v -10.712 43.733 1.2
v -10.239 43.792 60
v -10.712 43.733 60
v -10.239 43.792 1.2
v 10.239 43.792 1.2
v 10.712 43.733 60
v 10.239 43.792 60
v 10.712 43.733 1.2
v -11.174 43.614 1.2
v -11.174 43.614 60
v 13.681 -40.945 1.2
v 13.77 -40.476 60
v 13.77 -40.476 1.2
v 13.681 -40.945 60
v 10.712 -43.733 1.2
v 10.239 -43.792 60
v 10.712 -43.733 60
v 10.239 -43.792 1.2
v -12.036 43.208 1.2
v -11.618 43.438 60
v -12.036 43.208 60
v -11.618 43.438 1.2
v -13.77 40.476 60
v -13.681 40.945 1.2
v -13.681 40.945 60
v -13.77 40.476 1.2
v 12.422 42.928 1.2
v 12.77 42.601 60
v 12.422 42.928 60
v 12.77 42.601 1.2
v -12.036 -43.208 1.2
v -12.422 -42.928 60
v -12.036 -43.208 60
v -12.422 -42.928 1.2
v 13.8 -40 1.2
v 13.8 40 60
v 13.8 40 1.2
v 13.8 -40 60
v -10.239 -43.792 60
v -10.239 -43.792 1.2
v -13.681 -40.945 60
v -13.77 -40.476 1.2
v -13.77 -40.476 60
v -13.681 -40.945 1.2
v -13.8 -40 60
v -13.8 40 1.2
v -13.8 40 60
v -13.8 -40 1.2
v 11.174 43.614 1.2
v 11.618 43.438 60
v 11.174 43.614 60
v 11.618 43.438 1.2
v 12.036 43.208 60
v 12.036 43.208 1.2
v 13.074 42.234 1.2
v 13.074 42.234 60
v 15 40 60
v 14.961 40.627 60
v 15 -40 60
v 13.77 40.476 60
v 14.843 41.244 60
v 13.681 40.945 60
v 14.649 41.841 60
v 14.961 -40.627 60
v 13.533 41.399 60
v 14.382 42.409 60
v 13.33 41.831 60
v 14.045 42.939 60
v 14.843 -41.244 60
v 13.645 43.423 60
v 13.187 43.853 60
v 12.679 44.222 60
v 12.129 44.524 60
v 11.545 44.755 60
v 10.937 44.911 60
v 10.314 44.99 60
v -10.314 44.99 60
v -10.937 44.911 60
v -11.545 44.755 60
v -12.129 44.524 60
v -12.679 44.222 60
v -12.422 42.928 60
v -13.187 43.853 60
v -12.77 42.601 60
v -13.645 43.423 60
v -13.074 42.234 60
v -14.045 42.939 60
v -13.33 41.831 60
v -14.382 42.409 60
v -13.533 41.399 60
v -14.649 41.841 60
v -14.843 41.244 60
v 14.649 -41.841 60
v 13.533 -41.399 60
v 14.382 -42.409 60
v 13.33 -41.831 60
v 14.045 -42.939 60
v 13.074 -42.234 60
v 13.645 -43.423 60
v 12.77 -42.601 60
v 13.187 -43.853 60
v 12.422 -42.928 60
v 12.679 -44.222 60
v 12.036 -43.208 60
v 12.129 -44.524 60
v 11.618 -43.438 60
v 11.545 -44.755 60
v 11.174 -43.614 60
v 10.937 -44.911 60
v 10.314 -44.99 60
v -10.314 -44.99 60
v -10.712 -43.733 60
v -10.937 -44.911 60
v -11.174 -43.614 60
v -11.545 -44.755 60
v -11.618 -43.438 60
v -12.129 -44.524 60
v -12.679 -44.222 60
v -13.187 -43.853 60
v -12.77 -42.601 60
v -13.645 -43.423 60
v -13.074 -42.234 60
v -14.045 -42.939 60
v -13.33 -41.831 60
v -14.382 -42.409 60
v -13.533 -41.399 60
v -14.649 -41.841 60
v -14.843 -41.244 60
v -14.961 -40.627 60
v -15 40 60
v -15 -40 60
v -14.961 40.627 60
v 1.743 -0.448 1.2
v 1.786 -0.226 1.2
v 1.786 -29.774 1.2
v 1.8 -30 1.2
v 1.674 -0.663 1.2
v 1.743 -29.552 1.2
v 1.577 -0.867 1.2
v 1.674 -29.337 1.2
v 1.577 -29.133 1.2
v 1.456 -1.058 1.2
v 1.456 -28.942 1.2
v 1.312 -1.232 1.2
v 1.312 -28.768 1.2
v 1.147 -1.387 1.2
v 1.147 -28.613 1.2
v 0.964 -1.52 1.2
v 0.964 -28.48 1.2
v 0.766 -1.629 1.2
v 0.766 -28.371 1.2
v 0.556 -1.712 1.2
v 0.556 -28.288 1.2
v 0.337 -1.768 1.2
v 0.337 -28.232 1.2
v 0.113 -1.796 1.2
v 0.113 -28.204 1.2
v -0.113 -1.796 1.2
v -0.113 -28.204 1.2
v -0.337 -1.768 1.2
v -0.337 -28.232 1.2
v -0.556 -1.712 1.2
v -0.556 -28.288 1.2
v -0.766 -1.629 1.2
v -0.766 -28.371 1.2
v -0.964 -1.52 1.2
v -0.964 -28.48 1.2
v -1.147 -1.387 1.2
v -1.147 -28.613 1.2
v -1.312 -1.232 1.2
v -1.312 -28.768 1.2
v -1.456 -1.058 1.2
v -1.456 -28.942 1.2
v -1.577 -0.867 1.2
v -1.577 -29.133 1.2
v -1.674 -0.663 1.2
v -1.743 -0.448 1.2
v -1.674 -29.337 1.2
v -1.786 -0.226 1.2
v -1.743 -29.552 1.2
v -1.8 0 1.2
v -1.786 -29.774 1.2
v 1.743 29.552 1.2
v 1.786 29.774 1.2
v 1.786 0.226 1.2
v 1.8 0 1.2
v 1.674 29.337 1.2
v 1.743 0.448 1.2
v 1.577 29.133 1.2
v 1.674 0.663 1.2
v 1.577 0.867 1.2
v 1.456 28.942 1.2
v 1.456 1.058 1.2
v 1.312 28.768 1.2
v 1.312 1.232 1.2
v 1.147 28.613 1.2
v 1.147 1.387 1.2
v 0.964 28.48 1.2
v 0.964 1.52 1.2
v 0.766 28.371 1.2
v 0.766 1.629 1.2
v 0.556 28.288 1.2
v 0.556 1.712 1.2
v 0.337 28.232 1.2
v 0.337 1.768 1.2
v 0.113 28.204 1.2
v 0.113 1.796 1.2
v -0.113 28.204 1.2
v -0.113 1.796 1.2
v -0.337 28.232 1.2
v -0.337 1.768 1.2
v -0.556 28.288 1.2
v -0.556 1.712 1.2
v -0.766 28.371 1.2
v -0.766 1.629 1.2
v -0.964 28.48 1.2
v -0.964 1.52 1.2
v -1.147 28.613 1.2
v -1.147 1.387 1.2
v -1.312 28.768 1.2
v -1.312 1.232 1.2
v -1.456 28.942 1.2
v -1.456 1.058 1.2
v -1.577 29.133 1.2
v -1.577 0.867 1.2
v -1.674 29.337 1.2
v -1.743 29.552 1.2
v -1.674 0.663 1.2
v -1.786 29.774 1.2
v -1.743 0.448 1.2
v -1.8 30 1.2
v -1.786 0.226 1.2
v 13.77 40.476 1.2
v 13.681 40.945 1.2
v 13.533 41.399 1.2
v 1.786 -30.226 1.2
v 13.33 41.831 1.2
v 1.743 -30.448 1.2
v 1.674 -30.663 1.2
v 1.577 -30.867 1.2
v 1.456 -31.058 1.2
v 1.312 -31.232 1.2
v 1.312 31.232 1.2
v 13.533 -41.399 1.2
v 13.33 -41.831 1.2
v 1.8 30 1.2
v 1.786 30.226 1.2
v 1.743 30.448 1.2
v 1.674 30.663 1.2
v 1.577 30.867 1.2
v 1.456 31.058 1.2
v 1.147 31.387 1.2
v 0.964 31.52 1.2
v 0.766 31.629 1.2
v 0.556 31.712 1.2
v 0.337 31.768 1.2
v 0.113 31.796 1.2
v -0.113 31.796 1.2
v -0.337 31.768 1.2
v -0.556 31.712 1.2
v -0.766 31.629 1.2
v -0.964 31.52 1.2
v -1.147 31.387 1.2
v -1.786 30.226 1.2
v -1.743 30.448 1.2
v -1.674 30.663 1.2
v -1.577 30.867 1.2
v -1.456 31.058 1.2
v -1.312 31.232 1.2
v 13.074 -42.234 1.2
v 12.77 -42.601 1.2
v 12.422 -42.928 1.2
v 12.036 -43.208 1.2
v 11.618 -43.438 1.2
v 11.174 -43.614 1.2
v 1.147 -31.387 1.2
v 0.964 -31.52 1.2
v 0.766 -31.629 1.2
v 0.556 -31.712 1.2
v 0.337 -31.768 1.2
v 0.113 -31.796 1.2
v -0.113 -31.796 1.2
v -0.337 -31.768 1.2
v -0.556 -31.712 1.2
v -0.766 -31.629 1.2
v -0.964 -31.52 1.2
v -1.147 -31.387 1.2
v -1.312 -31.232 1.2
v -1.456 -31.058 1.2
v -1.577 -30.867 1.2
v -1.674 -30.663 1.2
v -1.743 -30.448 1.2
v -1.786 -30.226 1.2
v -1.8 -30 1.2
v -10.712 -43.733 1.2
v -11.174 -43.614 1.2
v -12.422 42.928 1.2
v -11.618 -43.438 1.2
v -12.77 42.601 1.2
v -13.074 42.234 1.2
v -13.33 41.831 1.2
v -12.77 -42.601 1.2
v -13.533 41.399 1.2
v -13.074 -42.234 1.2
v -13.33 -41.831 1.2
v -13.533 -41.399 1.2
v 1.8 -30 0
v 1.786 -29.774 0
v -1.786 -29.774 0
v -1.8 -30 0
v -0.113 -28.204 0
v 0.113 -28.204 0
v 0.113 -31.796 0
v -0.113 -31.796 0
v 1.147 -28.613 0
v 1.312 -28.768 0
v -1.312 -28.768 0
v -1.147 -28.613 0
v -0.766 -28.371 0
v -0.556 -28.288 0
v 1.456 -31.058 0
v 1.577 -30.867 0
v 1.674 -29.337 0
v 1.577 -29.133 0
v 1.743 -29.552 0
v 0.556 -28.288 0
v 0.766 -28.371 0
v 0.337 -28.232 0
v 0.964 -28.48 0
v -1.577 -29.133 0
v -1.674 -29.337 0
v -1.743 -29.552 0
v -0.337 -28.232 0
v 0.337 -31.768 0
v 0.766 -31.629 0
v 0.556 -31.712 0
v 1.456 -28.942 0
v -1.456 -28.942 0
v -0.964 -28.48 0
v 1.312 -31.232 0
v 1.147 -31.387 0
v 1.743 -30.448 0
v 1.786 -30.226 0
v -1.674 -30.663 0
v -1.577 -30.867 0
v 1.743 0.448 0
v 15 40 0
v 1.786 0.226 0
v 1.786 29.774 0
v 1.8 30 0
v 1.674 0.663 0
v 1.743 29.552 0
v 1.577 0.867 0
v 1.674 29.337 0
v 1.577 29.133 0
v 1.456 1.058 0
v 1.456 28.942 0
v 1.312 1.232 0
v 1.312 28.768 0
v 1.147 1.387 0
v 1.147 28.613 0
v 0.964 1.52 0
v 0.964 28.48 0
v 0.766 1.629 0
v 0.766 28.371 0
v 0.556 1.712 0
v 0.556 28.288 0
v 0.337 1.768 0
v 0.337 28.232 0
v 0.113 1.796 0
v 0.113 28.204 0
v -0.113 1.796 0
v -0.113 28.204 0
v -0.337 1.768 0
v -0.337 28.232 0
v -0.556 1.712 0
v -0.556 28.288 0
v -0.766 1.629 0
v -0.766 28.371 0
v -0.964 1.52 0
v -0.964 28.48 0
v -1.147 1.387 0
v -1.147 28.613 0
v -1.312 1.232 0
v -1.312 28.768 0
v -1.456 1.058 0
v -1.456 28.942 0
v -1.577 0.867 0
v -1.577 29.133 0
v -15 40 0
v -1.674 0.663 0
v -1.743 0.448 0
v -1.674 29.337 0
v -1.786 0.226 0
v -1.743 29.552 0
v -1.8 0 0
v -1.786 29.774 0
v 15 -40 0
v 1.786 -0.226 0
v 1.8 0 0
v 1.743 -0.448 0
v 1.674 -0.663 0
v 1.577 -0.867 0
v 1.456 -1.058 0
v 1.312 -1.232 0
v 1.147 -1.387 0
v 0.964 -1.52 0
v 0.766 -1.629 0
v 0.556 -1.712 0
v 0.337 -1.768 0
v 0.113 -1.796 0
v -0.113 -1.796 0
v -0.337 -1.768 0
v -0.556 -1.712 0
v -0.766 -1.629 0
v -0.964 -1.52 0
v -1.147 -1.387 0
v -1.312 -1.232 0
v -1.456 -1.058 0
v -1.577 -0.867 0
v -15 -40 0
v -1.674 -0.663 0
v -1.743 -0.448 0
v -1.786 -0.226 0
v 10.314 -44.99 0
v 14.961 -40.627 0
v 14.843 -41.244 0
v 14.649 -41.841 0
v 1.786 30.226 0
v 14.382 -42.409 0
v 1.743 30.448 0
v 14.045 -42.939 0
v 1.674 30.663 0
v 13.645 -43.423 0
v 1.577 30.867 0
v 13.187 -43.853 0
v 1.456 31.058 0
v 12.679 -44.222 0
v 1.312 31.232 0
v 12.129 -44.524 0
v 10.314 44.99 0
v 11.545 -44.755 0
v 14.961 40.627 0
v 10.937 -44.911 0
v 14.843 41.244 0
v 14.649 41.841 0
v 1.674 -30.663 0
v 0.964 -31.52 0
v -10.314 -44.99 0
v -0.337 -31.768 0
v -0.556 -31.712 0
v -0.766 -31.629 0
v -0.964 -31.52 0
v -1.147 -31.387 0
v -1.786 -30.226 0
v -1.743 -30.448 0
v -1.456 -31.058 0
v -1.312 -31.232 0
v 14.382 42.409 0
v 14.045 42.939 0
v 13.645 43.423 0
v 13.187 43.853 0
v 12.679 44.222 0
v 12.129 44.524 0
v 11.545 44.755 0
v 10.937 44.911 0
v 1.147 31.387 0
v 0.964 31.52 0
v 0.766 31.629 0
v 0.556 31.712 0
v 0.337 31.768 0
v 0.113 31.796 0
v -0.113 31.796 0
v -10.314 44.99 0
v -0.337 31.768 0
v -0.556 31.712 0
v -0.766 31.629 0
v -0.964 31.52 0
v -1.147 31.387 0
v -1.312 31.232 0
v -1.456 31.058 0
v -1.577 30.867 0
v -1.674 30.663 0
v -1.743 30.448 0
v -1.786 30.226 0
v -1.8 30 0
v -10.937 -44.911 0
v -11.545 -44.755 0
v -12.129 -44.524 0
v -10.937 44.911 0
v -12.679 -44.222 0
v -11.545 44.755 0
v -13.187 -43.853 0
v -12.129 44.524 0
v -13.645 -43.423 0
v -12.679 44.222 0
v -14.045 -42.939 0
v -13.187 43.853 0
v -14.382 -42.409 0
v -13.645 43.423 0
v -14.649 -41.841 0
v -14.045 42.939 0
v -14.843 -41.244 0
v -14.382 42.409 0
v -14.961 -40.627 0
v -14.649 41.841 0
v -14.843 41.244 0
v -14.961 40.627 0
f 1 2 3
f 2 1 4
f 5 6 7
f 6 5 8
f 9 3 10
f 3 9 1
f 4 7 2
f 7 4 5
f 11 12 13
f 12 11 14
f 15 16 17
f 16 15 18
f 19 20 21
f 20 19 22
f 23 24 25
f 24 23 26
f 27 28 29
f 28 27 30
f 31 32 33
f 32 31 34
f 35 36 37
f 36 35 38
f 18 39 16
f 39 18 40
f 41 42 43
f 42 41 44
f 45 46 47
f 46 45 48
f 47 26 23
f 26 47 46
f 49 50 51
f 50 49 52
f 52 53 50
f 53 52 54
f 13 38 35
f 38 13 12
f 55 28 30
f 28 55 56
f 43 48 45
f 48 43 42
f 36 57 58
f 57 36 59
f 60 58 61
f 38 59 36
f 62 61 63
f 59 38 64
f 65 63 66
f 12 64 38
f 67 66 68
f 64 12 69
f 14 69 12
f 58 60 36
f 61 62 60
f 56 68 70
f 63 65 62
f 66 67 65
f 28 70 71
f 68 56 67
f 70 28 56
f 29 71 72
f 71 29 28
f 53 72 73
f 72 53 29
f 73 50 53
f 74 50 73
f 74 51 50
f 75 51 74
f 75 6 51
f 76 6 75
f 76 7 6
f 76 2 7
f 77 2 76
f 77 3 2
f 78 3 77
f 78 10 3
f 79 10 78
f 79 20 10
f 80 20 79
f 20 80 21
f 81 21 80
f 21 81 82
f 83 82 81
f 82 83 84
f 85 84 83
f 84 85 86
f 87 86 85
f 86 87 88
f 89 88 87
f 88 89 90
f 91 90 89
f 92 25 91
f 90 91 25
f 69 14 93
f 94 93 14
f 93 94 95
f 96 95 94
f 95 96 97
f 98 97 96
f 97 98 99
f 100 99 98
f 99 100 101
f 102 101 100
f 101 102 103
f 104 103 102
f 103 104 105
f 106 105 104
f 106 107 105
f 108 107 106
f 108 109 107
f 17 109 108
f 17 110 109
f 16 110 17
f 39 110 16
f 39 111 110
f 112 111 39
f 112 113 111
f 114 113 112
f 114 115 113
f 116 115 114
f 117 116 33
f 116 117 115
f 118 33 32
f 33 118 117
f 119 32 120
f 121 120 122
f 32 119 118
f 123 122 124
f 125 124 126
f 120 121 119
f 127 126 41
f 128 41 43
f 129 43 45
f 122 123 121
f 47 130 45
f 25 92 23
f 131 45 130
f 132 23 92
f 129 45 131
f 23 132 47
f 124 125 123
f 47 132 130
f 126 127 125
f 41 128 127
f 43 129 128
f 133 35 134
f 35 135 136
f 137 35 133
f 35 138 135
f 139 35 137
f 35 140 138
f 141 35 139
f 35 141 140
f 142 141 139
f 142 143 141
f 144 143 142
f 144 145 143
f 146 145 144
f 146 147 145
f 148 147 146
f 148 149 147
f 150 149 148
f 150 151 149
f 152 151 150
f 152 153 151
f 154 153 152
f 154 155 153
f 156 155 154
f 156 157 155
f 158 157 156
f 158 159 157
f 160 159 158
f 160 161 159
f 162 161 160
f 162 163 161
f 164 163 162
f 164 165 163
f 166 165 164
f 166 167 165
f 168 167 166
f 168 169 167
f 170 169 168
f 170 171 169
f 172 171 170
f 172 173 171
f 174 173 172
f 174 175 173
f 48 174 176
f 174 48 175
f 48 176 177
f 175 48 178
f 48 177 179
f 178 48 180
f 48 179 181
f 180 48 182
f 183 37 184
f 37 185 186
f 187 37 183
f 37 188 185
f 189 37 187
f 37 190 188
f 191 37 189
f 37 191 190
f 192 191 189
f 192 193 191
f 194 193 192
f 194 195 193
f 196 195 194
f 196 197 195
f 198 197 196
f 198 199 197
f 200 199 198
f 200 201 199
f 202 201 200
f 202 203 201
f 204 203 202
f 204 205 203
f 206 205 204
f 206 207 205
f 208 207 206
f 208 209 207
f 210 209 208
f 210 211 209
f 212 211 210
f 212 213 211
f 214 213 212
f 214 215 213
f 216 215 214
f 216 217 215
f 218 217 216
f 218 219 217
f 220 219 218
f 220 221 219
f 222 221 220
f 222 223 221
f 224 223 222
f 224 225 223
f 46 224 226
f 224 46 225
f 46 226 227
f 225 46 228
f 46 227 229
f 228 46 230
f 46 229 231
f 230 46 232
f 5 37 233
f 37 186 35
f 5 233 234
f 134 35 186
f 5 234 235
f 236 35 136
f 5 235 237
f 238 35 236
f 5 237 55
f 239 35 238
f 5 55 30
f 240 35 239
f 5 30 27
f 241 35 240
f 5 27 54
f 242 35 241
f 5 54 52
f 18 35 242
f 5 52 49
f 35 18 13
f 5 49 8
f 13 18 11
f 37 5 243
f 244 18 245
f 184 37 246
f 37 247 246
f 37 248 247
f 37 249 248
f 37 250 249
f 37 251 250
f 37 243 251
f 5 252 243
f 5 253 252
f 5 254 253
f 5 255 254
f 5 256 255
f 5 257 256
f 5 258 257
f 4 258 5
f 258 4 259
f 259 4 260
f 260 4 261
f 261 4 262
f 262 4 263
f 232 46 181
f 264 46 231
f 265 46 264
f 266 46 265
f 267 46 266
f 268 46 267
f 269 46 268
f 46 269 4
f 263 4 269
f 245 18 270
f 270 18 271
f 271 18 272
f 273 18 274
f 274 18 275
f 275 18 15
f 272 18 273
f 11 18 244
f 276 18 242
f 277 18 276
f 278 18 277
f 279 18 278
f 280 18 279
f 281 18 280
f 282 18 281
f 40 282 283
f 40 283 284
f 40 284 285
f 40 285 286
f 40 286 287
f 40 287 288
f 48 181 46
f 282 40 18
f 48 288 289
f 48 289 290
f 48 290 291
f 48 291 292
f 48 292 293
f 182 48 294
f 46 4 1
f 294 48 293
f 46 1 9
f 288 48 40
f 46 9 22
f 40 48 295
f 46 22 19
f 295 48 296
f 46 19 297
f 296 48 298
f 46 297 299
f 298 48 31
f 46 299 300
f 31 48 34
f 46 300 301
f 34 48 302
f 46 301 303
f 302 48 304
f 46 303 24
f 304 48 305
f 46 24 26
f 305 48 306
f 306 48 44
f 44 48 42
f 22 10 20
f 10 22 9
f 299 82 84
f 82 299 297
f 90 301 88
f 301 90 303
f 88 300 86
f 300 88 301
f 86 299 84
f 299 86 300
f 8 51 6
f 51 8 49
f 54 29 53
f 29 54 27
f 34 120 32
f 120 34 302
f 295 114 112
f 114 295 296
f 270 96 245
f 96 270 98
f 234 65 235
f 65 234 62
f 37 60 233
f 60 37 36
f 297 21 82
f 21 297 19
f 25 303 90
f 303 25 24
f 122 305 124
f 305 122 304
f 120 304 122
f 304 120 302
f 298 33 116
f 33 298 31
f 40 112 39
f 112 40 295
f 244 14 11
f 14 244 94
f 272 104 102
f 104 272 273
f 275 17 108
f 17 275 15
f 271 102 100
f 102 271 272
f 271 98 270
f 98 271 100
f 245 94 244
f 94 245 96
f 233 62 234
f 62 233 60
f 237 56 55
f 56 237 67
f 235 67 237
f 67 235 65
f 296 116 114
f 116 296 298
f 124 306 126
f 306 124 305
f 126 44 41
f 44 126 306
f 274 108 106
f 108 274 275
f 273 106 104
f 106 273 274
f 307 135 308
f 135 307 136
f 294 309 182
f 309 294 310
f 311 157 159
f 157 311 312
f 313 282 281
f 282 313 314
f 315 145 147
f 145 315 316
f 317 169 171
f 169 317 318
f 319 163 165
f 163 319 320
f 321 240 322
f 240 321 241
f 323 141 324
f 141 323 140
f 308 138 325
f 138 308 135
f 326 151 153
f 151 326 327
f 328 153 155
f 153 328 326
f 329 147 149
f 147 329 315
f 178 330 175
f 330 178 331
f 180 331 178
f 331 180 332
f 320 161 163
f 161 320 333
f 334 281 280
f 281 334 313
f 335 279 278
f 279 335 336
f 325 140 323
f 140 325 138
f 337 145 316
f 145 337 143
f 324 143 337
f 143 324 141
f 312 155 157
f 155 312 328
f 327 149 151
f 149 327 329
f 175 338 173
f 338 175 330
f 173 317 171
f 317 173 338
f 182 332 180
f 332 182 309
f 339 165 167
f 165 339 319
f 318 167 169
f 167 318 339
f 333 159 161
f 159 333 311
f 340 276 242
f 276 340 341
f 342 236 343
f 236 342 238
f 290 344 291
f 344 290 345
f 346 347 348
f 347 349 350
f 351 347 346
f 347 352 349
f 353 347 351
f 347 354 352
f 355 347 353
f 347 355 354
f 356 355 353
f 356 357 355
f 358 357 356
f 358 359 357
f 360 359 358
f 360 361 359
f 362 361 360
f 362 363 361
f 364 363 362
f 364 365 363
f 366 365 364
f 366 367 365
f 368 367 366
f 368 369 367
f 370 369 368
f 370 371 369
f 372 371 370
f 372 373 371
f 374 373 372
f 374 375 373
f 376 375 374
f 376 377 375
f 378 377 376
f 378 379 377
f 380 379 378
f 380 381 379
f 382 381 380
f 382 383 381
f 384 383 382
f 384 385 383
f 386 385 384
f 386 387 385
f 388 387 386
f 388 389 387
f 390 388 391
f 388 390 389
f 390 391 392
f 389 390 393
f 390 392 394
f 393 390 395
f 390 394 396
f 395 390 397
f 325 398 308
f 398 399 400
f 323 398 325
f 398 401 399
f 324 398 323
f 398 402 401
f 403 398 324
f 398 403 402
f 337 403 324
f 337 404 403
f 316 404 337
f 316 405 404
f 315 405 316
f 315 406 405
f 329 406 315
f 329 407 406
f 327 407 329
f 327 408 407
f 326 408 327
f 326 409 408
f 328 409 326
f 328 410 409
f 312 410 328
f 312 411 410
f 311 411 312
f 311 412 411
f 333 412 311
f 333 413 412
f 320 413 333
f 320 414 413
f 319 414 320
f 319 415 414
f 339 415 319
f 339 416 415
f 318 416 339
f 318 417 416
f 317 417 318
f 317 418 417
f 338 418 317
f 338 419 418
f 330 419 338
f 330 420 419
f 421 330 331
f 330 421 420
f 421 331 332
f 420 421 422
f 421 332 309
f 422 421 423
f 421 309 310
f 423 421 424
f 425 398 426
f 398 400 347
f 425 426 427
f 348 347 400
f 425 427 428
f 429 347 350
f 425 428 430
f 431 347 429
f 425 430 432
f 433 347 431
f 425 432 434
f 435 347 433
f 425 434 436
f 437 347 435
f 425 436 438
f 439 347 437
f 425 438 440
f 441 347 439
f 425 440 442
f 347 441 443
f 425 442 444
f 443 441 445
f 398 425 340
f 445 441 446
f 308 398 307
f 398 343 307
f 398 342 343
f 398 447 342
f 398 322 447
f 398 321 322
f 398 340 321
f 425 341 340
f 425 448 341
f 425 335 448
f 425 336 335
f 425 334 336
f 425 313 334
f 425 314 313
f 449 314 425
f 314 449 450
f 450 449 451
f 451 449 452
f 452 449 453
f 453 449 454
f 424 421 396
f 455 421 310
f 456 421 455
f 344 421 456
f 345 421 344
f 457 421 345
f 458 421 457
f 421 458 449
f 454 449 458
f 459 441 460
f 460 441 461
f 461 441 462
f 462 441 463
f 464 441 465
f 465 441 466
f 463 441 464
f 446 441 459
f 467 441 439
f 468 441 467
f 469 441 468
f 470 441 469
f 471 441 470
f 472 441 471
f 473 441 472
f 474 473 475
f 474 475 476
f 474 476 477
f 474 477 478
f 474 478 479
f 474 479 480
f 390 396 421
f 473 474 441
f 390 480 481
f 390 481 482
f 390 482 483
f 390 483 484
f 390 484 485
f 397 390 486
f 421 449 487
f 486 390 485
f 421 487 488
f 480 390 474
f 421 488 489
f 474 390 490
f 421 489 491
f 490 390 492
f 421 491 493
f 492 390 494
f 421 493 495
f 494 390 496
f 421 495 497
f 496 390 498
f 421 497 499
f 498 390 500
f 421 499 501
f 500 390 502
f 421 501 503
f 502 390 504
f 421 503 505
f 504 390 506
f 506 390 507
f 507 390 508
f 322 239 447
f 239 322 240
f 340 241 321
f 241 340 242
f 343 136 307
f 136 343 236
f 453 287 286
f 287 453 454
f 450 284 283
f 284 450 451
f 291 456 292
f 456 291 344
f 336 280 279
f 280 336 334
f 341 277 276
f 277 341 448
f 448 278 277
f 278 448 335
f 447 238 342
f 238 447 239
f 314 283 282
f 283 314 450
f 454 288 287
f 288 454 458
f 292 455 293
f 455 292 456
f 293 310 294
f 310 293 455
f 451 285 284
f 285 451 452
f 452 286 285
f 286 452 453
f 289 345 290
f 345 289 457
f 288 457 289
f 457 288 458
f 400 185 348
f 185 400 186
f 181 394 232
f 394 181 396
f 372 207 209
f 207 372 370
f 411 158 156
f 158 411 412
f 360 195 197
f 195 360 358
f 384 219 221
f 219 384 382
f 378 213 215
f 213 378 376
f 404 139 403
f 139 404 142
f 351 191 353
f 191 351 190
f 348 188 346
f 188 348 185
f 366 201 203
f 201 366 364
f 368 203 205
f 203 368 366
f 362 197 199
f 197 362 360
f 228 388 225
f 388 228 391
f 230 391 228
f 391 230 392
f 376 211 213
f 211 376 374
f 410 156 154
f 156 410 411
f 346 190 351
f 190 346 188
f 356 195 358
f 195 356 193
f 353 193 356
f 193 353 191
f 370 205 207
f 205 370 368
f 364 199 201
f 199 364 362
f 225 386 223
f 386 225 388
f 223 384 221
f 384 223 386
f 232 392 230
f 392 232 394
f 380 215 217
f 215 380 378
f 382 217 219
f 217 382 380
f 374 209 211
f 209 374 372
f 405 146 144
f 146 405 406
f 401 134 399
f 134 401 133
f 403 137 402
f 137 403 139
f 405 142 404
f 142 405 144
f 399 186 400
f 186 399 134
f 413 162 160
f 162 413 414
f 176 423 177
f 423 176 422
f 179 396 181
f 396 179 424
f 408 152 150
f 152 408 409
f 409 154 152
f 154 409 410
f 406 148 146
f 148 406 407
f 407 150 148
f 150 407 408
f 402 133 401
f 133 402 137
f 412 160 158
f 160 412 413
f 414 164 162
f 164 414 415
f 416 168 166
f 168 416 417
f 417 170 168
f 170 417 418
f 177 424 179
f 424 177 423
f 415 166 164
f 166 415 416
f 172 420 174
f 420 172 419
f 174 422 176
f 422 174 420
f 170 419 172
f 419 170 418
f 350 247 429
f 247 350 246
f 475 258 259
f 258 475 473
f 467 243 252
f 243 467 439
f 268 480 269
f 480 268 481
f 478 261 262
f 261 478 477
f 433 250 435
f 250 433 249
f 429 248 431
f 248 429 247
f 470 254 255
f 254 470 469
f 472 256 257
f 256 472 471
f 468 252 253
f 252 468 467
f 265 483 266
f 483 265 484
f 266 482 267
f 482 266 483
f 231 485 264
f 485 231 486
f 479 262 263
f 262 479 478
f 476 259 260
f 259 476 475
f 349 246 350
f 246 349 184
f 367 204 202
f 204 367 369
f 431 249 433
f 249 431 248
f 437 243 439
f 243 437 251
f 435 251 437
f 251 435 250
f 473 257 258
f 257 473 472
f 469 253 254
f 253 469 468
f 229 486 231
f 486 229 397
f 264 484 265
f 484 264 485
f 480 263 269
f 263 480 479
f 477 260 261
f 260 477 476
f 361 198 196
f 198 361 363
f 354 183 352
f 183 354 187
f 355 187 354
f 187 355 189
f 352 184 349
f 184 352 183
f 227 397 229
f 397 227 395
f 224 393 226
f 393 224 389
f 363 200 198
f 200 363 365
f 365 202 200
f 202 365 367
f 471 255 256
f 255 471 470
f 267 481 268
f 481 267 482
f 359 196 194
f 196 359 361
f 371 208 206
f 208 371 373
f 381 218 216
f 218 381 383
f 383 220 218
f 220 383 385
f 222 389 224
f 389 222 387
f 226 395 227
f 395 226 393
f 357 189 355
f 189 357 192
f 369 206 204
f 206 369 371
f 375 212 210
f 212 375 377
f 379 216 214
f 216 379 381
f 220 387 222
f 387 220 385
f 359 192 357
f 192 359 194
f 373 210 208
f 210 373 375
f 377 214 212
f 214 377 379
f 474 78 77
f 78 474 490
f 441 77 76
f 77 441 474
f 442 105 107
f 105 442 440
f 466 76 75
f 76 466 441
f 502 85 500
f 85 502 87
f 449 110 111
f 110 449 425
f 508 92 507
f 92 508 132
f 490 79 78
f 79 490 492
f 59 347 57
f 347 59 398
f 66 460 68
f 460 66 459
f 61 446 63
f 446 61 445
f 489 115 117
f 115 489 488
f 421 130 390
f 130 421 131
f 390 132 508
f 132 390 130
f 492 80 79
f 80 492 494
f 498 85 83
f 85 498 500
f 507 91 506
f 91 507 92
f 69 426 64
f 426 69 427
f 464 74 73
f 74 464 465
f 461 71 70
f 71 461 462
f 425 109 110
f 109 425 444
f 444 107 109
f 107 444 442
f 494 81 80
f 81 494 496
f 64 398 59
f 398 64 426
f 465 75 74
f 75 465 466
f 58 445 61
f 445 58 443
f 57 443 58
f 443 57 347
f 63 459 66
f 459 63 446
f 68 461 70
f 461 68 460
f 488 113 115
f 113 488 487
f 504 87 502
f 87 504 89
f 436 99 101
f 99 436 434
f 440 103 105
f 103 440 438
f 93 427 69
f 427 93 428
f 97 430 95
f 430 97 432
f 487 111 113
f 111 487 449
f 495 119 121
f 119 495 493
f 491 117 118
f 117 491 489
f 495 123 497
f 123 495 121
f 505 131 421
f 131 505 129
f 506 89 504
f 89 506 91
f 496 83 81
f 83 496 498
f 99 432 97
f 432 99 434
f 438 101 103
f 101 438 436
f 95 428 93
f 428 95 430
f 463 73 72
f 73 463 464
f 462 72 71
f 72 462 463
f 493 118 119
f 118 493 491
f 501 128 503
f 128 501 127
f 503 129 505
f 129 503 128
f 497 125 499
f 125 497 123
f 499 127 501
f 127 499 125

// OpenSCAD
$fn = 50;


difference() {
	union() {
		hull() {
			translate(v = [-10.0000000000, 40.0000000000, 0]) {
				cylinder(h = 60, r = 5);
			}
			translate(v = [10.0000000000, 40.0000000000, 0]) {
				cylinder(h = 60, r = 5);
			}
			translate(v = [-10.0000000000, -40.0000000000, 0]) {
				cylinder(h = 60, r = 5);
			}
			translate(v = [10.0000000000, -40.0000000000, 0]) {
				cylinder(h = 60, r = 5);
			}
		}
	}
	union() {
		translate(v = [0, 0, 1.2000000000]) {
			hull() {
				translate(v = [-10.0000000000, 40.0000000000, 0]) {
					cylinder(h = 58.8000000000, r = 3.8000000000);
				}
				translate(v = [10.0000000000, 40.0000000000, 0]) {
					cylinder(h = 58.8000000000, r = 3.8000000000);
				}
				translate(v = [-10.0000000000, -40.0000000000, 0]) {
					cylinder(h = 58.8000000000, r = 3.8000000000);
				}
				translate(v = [10.0000000000, -40.0000000000, 0]) {
					cylinder(h = 58.8000000000, r = 3.8000000000);
				}
			}
		}
		#translate(v = [0.0000000000, -30.0000000000, 0]) {
			cylinder(h = 1.2000000000, r = 1.8000000000);
		}
		#cylinder(h = 1.2000000000, r = 1.8000000000);
		#translate(v = [0.0000000000, 30.0000000000, 0]) {
			cylinder(h = 1.2000000000, r = 1.8000000000);
		}
	}
}
